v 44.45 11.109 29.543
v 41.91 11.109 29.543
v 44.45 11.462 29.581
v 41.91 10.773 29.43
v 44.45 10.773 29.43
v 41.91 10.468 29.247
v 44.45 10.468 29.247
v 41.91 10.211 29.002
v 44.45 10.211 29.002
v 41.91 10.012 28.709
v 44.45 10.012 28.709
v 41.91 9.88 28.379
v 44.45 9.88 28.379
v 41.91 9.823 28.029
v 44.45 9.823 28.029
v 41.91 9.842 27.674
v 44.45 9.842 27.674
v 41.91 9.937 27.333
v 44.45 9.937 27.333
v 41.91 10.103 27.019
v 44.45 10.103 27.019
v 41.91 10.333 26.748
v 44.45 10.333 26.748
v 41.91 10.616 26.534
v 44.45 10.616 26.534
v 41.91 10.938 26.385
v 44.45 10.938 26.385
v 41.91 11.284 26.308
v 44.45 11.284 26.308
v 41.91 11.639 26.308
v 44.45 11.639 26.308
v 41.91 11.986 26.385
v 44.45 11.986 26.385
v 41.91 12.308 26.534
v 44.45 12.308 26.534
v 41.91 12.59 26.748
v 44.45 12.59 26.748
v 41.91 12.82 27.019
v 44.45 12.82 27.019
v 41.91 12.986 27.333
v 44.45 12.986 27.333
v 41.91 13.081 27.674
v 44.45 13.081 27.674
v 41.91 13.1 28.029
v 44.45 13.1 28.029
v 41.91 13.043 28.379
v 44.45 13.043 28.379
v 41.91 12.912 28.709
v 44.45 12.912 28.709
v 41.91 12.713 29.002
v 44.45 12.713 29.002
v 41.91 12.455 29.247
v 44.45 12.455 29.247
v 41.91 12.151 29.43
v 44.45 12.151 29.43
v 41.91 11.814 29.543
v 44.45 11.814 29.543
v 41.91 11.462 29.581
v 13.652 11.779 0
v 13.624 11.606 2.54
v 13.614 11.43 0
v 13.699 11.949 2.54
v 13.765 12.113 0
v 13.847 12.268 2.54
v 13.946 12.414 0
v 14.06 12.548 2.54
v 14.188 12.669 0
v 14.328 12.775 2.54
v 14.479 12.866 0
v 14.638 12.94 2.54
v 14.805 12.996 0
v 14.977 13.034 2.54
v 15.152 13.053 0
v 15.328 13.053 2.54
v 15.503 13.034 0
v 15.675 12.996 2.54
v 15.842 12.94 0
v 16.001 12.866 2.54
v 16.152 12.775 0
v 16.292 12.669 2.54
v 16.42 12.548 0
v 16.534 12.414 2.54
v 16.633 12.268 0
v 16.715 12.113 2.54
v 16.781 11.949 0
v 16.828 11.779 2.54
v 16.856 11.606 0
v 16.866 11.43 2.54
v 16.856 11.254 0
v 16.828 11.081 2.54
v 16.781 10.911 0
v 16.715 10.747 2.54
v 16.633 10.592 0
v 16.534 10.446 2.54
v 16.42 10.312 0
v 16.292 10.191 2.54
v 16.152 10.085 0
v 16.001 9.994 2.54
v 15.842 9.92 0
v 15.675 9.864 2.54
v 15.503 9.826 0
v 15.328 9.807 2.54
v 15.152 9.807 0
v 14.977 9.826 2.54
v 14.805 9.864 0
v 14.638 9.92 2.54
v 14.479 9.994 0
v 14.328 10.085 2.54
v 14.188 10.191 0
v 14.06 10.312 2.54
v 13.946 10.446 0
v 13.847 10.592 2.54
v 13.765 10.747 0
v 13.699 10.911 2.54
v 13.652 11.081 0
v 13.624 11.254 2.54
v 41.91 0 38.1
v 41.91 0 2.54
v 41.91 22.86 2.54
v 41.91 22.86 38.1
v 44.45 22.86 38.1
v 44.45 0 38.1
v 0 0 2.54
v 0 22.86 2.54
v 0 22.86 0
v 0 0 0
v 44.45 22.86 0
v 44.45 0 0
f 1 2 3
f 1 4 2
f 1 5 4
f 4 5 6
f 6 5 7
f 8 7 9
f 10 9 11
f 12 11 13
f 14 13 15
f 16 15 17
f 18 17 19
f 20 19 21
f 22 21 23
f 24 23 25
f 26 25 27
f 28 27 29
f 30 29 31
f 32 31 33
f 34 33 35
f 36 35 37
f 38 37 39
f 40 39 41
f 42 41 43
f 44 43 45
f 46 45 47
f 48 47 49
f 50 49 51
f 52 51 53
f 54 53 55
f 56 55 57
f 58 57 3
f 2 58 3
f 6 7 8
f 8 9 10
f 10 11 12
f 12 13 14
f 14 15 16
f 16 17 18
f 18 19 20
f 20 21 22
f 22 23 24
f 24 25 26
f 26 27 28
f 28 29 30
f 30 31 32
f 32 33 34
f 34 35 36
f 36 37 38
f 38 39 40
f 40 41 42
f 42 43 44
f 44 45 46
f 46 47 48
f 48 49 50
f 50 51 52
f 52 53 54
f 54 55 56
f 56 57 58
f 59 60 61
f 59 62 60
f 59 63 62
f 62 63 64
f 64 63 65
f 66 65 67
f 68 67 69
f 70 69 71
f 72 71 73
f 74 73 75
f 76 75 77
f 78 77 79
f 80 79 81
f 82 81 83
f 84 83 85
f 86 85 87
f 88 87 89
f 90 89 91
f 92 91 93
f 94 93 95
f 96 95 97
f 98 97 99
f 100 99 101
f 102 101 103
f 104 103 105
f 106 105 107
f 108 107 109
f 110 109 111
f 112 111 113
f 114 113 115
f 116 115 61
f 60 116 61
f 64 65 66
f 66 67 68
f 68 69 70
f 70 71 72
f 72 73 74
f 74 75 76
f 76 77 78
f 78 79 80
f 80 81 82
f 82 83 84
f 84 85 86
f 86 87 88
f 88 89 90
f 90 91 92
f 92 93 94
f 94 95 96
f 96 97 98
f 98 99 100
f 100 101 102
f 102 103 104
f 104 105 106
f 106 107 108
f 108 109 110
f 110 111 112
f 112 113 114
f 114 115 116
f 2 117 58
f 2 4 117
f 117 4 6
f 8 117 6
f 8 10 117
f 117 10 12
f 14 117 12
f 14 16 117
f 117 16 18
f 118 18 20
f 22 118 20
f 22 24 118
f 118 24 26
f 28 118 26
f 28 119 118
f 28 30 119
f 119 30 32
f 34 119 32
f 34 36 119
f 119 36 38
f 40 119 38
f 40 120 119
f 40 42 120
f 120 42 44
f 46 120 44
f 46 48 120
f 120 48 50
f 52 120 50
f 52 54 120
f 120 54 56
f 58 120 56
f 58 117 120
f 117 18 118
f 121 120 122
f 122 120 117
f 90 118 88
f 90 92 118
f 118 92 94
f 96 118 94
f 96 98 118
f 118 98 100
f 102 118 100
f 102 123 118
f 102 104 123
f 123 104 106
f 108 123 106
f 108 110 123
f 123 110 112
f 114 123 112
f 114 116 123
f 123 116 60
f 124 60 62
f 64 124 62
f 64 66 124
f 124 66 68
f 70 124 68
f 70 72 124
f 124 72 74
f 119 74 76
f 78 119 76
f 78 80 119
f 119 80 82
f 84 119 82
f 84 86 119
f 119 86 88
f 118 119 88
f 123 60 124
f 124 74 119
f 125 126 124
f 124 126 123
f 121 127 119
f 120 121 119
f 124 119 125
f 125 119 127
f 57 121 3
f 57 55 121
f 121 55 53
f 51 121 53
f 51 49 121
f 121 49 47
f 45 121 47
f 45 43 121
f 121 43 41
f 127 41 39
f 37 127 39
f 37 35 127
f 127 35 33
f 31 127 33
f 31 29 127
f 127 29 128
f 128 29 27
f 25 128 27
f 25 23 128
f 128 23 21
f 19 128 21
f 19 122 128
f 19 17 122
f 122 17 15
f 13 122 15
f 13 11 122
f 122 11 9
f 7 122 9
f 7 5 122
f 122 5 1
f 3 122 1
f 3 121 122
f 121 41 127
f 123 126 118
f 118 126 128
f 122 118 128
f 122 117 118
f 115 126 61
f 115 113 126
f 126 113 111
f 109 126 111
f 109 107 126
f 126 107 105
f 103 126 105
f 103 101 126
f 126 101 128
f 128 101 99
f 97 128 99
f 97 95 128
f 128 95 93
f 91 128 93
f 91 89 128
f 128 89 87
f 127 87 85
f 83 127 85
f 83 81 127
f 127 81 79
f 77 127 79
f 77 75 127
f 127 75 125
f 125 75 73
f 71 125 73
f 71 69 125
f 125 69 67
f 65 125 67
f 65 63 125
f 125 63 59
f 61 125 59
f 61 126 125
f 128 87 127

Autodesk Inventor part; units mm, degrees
ref_plane "YZ Plane" through (0, 0, 0) normal (1, 0, 0) x (0, 1, 0)
ref_plane "XZ Plane" through (0, 0, 0) normal (0, 1, 0) x (-1, 0, 0)
ref_plane "XY Plane" through (0, 0, 0) normal (0, 0, 1) x (1, 0, 0)
sketch "Sketch1" plane through (0, 0, 0) normal (0, 0, 1) x (1, 0, 0)
  line L0 (0, 0) -> (44.45, 0)
  line L1 (44.45, 0) -> (44.45, 22.86)
  line L2 (44.45, 22.86) -> (0, 22.86)
  line L3 (0, 22.86) -> (0, 0)
  dimension "d0" = 22.86
  dimension "d1" = 44.45
extrude "Extrusion1" add sketch "Sketch1" along normal blind 2.54
sketch "Sketch2" plane through (0, 0, 2.54) normal (0, 0, 1) x (1, 0, 0)
  line L0 (0, 0) -> (44.45, 0) projected
  line L1 (44.45, 22.86) -> (41.91, 22.86)
  line L2 (41.91, 22.86) -> (41.91, 0)
  line L3 (41.91, 0) -> (44.45, 0)
  line L4 (44.45, 0) -> (44.45, 22.86)
  dimension "d4" = 2.54
extrude "Extrusion2" add sketch "Sketch2" along normal blind 35.56
sketch "Sketch4" plane through (0, 0, 2.54) normal (0, 0, 1) x (1, 0, 0)
  line L0 (-11.3987, 11.43) -> (43.7828, 11.43) construction
  line L1 (0, 0) -> (41.91, 0) construction
  line L2 (41.91, 0) -> (41.91, 22.86) construction
  line L3 (41.91, 22.86) -> (0, 22.86) construction
  line L4 (0, 22.86) -> (0, 0) construction
  line L5 (0, 0) -> (41.91, 0) construction
  point P0 (15.24, 11.43)
  dimension "d16" = 11.43
  dimension "d17" = 26.67
hole "Hole2" at (15.24, 11.43, 2.54) direction (0, 0, -1) diameter 3.2512 end through all
sketch "Sketch5" plane through (41.91, 0, 2.54) normal (-1, 0, 0) x (0, 0, 1)
  line L0 (24.13, 11.4617) -> (25.4, 11.4617)
  circle A0 centre (25.4, 11.4617) radius 1.6412
  line L1 (0, 0) -> (0, 22.86) projected
  point P0 (-2.54, 0)
  dimension "d25" = 1.27
  dimension "d28" = 25.4
extrude "Extrusion3" cut sketch "Sketch5" against normal blind 25.4
properties part number "000102 (revised)"
